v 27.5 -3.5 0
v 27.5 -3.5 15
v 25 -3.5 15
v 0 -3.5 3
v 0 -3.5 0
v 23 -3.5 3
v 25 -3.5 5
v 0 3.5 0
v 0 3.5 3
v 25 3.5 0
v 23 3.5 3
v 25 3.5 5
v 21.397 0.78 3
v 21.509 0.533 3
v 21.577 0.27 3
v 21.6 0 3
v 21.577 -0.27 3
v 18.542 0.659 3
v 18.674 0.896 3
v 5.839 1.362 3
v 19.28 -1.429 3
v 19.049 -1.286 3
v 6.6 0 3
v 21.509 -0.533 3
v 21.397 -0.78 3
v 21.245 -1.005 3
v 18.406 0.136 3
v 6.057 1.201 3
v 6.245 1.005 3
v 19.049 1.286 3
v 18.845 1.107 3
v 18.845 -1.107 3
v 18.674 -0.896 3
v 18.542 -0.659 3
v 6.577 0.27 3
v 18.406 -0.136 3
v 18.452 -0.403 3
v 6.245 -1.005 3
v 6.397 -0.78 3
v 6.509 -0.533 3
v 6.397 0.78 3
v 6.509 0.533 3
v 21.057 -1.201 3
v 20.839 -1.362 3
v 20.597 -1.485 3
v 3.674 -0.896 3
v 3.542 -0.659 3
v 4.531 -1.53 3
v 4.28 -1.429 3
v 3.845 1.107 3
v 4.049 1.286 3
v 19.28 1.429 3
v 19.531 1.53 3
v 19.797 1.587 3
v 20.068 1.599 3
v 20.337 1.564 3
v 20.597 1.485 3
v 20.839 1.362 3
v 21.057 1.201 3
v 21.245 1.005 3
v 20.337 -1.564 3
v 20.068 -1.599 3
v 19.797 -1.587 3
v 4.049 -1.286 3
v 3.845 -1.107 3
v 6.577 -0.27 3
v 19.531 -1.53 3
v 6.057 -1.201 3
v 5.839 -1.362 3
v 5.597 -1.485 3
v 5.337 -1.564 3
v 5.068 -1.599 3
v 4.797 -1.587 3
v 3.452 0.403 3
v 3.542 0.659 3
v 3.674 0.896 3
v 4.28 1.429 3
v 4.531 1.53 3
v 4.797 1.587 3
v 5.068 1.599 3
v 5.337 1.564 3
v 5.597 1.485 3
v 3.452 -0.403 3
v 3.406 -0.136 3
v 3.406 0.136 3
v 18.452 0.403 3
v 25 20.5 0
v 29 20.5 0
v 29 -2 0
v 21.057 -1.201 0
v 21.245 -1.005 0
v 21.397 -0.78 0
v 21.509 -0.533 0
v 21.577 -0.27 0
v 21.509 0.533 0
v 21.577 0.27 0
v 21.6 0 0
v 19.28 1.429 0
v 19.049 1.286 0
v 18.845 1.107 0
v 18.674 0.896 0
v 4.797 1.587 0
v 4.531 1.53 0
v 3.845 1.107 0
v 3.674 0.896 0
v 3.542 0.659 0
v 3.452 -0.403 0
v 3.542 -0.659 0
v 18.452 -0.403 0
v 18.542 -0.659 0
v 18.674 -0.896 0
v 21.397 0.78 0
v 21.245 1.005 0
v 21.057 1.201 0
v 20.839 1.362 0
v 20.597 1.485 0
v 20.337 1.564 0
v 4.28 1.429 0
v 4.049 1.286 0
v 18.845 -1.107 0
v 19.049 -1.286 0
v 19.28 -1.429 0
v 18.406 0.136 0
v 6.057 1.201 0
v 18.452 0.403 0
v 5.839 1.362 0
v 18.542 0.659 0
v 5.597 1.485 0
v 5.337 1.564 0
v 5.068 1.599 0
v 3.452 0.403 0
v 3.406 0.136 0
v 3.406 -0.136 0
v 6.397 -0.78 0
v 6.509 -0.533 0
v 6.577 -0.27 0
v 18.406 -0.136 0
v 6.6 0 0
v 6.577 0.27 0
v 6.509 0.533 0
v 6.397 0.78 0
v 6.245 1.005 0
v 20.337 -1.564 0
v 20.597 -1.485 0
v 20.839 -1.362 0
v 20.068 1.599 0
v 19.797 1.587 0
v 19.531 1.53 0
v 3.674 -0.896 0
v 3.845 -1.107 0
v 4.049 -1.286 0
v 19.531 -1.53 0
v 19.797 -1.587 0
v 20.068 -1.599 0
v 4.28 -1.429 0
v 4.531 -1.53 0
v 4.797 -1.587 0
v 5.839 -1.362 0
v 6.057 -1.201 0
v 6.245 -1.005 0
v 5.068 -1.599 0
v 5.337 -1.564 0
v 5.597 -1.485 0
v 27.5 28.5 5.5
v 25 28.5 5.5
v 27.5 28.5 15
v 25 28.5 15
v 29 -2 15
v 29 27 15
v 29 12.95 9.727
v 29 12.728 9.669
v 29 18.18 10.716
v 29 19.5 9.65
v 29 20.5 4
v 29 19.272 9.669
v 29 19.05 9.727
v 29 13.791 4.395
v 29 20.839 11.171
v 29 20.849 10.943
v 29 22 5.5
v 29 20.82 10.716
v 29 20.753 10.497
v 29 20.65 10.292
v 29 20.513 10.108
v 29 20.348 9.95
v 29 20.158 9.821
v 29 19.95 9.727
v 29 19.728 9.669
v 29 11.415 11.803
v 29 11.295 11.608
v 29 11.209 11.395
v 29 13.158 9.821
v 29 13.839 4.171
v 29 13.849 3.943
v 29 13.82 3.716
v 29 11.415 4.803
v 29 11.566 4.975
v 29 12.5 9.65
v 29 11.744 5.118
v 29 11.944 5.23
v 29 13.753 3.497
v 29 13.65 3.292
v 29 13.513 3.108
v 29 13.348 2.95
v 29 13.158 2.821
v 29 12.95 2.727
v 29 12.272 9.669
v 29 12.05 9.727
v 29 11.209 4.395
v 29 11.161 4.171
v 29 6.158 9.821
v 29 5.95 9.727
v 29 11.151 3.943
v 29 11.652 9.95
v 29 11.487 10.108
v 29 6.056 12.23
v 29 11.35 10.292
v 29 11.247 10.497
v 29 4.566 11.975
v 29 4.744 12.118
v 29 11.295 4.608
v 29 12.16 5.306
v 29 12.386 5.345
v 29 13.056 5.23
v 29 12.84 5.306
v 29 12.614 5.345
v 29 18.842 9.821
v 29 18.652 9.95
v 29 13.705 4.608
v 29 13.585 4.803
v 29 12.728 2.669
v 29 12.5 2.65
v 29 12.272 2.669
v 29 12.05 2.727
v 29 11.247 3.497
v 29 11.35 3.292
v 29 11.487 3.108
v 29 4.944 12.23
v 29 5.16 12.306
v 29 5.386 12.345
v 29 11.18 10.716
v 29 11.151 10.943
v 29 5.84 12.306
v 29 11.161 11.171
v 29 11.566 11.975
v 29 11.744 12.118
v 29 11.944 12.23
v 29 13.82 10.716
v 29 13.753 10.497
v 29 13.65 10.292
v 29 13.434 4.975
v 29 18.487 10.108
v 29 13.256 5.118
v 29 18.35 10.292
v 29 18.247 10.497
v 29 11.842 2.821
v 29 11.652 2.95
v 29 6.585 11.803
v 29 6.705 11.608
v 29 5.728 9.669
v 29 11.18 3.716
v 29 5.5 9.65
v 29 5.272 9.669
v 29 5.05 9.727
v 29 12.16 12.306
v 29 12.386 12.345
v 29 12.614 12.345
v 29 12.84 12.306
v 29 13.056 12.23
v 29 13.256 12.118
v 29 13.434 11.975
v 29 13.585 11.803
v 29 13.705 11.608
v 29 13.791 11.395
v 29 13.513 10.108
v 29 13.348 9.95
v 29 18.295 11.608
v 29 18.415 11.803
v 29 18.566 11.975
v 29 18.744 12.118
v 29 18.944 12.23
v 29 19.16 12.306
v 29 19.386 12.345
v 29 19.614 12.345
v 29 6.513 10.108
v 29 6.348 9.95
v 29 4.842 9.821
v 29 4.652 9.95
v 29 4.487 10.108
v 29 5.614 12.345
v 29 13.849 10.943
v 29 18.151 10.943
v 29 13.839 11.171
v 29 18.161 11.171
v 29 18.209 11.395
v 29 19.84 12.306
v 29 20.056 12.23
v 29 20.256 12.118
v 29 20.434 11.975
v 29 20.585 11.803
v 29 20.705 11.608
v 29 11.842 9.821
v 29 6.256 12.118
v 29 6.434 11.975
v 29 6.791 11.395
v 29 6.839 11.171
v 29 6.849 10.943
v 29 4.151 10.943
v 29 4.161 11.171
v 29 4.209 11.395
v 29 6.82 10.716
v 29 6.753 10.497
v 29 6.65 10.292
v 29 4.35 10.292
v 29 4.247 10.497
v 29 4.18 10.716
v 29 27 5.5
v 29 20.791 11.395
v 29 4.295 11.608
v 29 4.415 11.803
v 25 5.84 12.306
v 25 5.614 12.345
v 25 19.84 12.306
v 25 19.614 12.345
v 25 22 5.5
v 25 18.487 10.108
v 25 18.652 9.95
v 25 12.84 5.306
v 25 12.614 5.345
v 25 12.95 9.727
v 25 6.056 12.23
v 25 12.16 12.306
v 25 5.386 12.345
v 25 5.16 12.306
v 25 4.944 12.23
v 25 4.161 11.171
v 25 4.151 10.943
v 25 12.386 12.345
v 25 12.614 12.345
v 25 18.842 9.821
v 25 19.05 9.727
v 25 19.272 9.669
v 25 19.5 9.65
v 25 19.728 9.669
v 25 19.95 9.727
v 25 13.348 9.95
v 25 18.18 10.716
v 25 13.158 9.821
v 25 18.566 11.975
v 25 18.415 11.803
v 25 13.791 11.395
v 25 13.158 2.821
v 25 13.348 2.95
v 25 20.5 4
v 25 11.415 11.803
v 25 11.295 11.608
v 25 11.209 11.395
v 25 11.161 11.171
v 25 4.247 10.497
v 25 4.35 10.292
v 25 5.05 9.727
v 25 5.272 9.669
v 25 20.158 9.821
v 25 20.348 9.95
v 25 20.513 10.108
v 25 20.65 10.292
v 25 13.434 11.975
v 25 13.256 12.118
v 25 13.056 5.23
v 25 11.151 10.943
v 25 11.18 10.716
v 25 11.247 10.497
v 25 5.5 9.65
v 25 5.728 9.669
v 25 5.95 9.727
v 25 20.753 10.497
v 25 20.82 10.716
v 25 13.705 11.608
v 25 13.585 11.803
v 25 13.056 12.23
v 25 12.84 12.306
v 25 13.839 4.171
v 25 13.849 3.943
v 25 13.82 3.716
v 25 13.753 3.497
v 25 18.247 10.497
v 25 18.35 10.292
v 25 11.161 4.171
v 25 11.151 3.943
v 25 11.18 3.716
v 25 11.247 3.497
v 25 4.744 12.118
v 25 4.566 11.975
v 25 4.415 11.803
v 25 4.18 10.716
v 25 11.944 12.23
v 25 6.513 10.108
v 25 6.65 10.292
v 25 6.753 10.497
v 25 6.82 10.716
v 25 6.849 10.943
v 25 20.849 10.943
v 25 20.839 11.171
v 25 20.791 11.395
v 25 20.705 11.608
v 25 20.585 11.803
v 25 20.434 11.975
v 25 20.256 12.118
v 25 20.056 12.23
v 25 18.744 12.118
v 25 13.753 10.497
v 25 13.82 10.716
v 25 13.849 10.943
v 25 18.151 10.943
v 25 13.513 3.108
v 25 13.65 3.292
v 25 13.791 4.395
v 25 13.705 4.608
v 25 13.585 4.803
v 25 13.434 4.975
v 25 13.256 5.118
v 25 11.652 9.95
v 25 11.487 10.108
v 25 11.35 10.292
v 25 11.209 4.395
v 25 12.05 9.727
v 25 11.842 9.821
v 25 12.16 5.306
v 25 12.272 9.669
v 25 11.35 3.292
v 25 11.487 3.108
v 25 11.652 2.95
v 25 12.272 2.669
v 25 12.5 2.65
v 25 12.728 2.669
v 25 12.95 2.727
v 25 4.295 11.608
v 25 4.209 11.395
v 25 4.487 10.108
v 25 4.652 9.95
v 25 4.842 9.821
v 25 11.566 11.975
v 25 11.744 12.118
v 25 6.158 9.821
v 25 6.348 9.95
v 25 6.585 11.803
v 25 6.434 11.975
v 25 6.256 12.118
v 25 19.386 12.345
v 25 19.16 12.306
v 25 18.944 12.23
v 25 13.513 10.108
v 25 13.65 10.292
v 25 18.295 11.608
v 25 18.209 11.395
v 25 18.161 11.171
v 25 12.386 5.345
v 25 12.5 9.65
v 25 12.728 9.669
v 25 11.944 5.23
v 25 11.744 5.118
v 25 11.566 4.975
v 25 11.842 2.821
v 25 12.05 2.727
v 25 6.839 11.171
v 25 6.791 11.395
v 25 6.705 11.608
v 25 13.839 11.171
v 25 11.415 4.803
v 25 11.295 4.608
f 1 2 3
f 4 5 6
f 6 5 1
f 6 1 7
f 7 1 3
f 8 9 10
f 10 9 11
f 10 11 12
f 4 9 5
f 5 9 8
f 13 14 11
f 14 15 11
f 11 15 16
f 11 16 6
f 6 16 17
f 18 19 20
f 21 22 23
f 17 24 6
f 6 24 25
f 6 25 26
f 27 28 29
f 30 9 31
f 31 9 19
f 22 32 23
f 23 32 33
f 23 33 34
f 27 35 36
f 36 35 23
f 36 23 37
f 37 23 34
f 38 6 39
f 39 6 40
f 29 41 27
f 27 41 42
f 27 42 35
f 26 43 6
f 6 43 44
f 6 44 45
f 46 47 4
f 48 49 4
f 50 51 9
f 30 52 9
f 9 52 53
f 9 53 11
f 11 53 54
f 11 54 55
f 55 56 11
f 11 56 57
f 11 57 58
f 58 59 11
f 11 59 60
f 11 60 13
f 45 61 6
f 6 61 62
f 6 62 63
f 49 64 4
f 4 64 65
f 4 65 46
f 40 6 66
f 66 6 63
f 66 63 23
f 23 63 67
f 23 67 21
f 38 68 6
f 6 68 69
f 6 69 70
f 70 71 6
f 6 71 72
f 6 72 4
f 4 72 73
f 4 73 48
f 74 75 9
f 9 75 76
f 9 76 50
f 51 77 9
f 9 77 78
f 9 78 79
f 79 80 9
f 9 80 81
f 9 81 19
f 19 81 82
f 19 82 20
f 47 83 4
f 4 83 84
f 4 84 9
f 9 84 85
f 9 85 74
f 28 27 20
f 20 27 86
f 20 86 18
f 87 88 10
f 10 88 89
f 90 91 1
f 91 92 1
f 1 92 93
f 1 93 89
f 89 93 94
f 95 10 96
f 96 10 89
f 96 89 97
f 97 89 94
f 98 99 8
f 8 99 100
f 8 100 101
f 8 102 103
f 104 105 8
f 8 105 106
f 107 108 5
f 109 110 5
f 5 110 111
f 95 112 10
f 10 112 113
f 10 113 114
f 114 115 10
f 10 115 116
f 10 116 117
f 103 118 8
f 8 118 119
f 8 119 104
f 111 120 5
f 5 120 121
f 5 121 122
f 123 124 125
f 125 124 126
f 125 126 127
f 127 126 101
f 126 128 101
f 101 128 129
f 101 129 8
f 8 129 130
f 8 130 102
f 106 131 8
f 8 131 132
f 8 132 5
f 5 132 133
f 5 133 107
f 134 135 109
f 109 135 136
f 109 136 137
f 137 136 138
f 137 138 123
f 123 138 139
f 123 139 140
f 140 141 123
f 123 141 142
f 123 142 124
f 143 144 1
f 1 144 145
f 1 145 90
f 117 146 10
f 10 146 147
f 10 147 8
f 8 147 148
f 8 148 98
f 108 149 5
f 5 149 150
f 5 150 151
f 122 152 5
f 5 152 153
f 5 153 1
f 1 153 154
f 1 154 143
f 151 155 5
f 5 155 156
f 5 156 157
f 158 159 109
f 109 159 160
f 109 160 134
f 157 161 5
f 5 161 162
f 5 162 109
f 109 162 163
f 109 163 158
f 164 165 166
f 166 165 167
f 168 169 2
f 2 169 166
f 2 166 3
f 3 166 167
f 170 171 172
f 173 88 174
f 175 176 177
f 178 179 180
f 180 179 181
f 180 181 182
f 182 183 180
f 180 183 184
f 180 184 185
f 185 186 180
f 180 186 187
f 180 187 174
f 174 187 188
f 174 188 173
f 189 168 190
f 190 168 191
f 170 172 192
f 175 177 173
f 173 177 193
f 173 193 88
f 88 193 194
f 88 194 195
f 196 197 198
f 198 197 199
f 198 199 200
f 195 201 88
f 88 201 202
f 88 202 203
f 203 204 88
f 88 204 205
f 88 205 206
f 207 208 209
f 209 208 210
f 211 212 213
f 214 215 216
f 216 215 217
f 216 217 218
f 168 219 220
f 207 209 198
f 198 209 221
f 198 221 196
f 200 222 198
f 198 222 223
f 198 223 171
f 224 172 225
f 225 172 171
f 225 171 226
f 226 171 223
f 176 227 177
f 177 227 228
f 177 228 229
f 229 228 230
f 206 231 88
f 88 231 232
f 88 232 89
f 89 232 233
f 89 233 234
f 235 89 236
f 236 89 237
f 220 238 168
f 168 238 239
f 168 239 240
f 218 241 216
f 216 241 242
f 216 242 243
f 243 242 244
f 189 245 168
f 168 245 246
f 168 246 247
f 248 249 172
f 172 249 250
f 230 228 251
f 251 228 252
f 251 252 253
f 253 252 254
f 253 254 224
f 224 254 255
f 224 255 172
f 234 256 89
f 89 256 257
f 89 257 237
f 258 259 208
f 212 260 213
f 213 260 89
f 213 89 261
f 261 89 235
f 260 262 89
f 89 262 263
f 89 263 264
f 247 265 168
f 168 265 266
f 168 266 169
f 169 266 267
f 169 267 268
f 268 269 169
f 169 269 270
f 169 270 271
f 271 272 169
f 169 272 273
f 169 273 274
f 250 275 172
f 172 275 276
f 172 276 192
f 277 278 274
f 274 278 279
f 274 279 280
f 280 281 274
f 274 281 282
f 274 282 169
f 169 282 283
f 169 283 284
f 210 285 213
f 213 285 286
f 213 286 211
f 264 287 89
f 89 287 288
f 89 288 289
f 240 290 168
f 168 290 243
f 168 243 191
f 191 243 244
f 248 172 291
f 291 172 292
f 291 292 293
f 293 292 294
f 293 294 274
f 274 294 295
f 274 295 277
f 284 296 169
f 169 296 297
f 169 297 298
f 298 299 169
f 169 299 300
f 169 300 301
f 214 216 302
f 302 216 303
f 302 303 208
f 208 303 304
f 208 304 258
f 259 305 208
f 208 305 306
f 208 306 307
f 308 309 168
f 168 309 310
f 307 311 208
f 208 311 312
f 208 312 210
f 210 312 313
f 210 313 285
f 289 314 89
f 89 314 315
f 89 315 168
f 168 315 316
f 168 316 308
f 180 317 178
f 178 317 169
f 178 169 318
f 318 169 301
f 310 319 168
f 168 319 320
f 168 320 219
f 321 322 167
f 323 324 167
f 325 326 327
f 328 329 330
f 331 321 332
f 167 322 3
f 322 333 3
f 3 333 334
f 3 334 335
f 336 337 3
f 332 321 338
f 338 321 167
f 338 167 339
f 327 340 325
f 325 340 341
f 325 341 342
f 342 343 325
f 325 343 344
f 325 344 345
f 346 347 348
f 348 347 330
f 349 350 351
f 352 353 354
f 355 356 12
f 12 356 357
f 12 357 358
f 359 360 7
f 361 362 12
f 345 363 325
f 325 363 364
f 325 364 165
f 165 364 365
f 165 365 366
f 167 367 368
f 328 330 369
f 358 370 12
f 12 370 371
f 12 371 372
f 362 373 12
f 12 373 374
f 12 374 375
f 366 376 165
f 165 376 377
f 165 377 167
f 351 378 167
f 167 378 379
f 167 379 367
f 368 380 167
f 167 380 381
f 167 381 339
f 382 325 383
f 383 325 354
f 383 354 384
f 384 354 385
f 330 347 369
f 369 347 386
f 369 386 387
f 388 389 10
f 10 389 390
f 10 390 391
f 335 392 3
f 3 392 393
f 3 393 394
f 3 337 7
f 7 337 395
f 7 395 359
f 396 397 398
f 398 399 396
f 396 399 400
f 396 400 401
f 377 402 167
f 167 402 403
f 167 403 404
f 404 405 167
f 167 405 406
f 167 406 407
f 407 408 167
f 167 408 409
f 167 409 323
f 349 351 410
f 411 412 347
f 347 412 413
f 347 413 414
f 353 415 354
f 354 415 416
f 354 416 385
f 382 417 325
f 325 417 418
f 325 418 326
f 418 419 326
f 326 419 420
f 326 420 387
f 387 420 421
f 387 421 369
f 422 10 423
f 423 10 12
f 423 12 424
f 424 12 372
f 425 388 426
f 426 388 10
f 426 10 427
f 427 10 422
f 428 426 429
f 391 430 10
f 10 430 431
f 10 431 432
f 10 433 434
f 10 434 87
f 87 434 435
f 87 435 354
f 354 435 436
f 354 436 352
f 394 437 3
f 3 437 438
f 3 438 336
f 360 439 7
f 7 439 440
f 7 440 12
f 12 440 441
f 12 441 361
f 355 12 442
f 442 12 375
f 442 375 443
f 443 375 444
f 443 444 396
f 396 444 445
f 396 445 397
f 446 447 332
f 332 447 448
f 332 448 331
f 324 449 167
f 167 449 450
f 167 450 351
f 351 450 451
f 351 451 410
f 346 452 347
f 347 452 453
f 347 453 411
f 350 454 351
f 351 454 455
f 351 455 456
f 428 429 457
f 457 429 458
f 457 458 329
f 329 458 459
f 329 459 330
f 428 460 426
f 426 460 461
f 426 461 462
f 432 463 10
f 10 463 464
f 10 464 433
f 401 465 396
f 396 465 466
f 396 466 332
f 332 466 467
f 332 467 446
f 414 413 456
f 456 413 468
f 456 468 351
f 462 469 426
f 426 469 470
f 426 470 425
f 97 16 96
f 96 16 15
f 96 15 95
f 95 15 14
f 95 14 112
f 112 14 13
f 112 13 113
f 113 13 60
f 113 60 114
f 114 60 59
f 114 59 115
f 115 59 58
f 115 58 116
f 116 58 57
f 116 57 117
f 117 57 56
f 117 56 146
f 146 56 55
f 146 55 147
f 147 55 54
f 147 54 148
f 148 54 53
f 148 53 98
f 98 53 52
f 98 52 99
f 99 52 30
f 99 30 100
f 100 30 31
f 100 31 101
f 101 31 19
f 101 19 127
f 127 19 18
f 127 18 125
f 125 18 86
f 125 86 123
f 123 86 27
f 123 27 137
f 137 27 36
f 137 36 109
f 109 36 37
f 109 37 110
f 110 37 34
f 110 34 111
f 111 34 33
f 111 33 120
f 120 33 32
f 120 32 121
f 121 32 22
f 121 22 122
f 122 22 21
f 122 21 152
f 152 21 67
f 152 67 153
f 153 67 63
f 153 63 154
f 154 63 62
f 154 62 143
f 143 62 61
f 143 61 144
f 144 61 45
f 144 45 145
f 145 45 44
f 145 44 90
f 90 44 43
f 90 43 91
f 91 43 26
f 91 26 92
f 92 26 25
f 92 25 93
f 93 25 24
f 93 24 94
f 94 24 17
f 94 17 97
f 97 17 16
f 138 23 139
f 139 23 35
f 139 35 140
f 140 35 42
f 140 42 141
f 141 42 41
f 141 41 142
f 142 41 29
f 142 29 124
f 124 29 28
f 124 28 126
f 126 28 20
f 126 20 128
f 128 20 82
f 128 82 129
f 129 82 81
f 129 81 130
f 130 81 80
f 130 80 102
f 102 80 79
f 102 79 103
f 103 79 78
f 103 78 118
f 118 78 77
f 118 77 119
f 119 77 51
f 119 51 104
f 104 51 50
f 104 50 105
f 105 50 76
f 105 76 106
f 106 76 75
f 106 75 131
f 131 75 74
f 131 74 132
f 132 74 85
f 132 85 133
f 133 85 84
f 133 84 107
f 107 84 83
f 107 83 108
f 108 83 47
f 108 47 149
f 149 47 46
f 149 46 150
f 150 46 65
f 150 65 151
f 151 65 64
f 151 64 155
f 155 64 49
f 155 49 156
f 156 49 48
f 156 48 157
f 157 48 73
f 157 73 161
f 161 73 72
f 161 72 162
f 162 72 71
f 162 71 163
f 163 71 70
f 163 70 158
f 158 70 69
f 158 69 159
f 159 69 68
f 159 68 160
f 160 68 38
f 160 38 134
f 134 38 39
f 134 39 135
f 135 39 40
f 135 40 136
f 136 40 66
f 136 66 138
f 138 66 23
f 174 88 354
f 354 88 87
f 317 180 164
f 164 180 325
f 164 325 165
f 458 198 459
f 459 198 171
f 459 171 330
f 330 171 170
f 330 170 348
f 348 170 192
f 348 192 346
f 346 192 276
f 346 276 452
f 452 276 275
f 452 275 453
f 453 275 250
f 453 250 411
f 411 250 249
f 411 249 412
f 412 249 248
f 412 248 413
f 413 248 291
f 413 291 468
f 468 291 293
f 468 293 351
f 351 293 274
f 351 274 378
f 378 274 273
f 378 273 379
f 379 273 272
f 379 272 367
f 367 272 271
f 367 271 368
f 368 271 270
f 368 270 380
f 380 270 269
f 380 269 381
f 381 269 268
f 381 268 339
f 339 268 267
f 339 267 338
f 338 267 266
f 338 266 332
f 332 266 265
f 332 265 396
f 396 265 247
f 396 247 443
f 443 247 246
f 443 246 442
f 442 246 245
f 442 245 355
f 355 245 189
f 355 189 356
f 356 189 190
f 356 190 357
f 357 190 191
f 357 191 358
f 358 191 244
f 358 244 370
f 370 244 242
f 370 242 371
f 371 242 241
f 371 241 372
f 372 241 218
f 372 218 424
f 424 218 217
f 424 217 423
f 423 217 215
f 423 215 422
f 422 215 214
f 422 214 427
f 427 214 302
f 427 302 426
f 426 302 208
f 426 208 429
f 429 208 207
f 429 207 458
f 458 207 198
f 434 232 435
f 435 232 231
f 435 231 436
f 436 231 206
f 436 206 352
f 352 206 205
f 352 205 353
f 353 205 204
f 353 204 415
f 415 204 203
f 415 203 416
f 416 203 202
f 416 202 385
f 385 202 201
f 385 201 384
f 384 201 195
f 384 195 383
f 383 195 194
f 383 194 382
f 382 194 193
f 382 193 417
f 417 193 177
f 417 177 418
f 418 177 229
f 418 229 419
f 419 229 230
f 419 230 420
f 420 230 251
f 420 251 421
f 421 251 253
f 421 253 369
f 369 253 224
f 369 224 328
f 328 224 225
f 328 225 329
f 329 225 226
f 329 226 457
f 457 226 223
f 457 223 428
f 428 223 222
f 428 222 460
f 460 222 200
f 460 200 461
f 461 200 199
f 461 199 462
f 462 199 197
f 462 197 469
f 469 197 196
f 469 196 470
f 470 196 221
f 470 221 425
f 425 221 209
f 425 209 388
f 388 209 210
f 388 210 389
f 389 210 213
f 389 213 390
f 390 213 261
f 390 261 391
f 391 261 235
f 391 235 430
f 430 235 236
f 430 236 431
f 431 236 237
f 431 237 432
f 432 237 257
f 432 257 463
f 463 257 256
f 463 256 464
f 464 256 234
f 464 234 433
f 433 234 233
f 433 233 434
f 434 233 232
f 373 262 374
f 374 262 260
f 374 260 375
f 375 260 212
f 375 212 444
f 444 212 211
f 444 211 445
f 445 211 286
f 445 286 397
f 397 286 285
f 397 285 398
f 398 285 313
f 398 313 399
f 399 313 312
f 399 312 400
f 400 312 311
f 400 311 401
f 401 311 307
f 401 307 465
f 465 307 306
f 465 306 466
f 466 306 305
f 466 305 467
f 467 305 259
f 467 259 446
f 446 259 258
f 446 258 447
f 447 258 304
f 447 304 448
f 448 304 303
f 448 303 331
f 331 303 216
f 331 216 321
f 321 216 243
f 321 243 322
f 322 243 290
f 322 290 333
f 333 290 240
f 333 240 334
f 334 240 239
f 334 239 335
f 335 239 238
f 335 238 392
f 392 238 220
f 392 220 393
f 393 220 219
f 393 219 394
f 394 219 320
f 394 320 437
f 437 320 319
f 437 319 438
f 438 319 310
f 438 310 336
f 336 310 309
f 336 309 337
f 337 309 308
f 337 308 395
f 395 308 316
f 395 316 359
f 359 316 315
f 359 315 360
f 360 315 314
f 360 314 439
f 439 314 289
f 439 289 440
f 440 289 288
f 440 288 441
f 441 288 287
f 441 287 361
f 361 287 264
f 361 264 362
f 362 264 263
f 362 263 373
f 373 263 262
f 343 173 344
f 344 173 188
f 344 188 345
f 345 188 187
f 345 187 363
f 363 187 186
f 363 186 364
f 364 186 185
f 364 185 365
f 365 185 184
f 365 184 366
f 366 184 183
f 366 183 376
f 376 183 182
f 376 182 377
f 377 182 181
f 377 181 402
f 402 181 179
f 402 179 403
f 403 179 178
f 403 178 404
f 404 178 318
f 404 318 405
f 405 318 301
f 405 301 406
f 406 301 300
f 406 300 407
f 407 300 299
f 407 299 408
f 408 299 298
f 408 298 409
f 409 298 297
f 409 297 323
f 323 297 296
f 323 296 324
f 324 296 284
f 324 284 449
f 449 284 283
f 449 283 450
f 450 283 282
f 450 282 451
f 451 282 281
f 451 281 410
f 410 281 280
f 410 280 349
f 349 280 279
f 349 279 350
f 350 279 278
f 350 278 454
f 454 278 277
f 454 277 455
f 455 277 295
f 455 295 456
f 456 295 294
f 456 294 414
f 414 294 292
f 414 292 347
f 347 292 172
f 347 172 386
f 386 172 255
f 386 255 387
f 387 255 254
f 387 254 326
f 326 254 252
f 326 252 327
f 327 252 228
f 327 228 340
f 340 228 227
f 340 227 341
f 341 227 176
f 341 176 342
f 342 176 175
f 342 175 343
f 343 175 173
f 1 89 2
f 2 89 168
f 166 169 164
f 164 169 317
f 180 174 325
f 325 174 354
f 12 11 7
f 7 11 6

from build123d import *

# Parameters (mm, degrees)
SZKIC1_W                    = 25
SZKIC1_H                    = 7
DODANIE_WYCI_GNI_CIE1_DEPTH = 3
SZKIC2_W                    = 15
SZKIC2_H                    = 32
DODANIE_WYCI_GNI_CIE2_DEPTH = 4
SZKIC3_R                    = 1.6
WYTNIJ_WYCI_GNI_CIE1_DEPTH  = 43.393985422
WYTNIJ_WYCI_GNI_CIE2_REACH  = 45.339
SZKIC4_W                    = 5.5
SZKIC4_H                    = 8
WYTNIJ_WYCI_GNI_CIE3_REACH  = 45.339
SZKIC5_R                    = 1.35
SFAZOWANIE1_SIZE            = 1.5
SFAZOWANIE2_SIZE            = 2


with BuildPart() as part:
    # Szkic1 → Dodanie-wyciągnięcie1 (new body)
    with BuildSketch(Plane.XY):
        with Locations((12.5, 0)):
            Rectangle(SZKIC1_W, SZKIC1_H)
    extrude(amount=DODANIE_WYCI_GNI_CIE1_DEPTH)

    # Szkic2 → Dodanie-wyciągnięcie2 (add)
    with BuildSketch(Plane(origin=(25, 0, 0), x_dir=(0, 0, -1), z_dir=(1, 0, 0))):
        with Locations((-7.5, 12.5)):
            Rectangle(SZKIC2_W, SZKIC2_H)
    extrude(amount=DODANIE_WYCI_GNI_CIE2_DEPTH)

    # Szkic3 → Wytnij-wyciągnięcie1 (cut, through all)
    with BuildSketch(Plane.XY.offset(3)):
        with Locations((5, 0)):
            Circle(SZKIC3_R)
        with Locations((20, 0)):
            Circle(SZKIC3_R)
    extrude(amount=-WYTNIJ_WYCI_GNI_CIE1_DEPTH, mode=Mode.SUBTRACT)

    # Szkic4 → Wytnij-wyciągnięcie2 (cut, up to next)
    with BuildSketch(Plane(origin=(29, 0, 0), x_dir=(0, 0, -1), z_dir=(1, 0, 0)), mode=Mode.PRIVATE) as wytnij_wyci_gni_cie2_sk1:
        with Locations((-2.75, 24.5)):
            Rectangle(SZKIC4_W, SZKIC4_H)
    wytnij_wyci_gni_cie2_tool1 = extrude(wytnij_wyci_gni_cie2_sk1.sketch, amount=-WYTNIJ_WYCI_GNI_CIE2_REACH, mode=Mode.PRIVATE) & part.part
    add(wytnij_wyci_gni_cie2_tool1.solids().sort_by_distance((29, 24.5, 2.75))[0], mode=Mode.SUBTRACT)

    # Szkic5 → Wytnij-wyciągnięcie3 (cut, up to next)
    with BuildSketch(Plane(origin=(29, 0, 0), x_dir=(0, 0, -1), z_dir=(1, 0, 0)), mode=Mode.PRIVATE) as wytnij_wyci_gni_cie3_sk1:
        with Locations((-11, 12.5)):
            Circle(SZKIC5_R)
    wytnij_wyci_gni_cie3_tool1 = extrude(wytnij_wyci_gni_cie3_sk1.sketch, amount=-WYTNIJ_WYCI_GNI_CIE3_REACH, mode=Mode.PRIVATE) & part.part
    # Szkic5 → Wytnij-wyciągnięcie3 (cut, up to next)
    with BuildSketch(Plane(origin=(29, 0, 0), x_dir=(0, 0, -1), z_dir=(1, 0, 0)), mode=Mode.PRIVATE) as wytnij_wyci_gni_cie3_sk2:
        with Locations((-4, 12.5)):
            Circle(SZKIC5_R)
    wytnij_wyci_gni_cie3_tool2 = extrude(wytnij_wyci_gni_cie3_sk2.sketch, amount=-WYTNIJ_WYCI_GNI_CIE3_REACH, mode=Mode.PRIVATE) & part.part
    # Szkic5 → Wytnij-wyciągnięcie3 (cut, up to next)
    with BuildSketch(Plane(origin=(29, 0, 0), x_dir=(0, 0, -1), z_dir=(1, 0, 0)), mode=Mode.PRIVATE) as wytnij_wyci_gni_cie3_sk3:
        with Locations((-11, 5.5)):
            Circle(SZKIC5_R)
    wytnij_wyci_gni_cie3_tool3 = extrude(wytnij_wyci_gni_cie3_sk3.sketch, amount=-WYTNIJ_WYCI_GNI_CIE3_REACH, mode=Mode.PRIVATE) & part.part
    # Szkic5 → Wytnij-wyciągnięcie3 (cut, up to next)
    with BuildSketch(Plane(origin=(29, 0, 0), x_dir=(0, 0, -1), z_dir=(1, 0, 0)), mode=Mode.PRIVATE) as wytnij_wyci_gni_cie3_sk4:
        with Locations((-11, 19.5)):
            Circle(SZKIC5_R)
    wytnij_wyci_gni_cie3_tool4 = extrude(wytnij_wyci_gni_cie3_sk4.sketch, amount=-WYTNIJ_WYCI_GNI_CIE3_REACH, mode=Mode.PRIVATE) & part.part
    add(wytnij_wyci_gni_cie3_tool1.solids().sort_by_distance((29, 12.5, 11))[0], mode=Mode.SUBTRACT)
    add(wytnij_wyci_gni_cie3_tool2.solids().sort_by_distance((29, 12.5, 4))[0], mode=Mode.SUBTRACT)
    add(wytnij_wyci_gni_cie3_tool3.solids().sort_by_distance((29, 5.5, 11))[0], mode=Mode.SUBTRACT)
    add(wytnij_wyci_gni_cie3_tool4.solids().sort_by_distance((29, 19.5, 11))[0], mode=Mode.SUBTRACT)

    # Sfazowanie1
    sfazowanie1_edges = [part.edges().sort_by_distance(p)[0] for p in [
        (29, -3.5, 7.5),
        (29, 28.5, 10.25),
        (27, 20.5, 5.5),
    ]]
    chamfer(sfazowanie1_edges, length=SFAZOWANIE1_SIZE)

    # Sfazowanie2
    sfazowanie2_edges = [part.edges().sort_by_distance(p)[0] for p in [
        (25, 0, 3),
    ]]
    chamfer(sfazowanie2_edges, length=SFAZOWANIE2_SIZE)


solid = part.part
